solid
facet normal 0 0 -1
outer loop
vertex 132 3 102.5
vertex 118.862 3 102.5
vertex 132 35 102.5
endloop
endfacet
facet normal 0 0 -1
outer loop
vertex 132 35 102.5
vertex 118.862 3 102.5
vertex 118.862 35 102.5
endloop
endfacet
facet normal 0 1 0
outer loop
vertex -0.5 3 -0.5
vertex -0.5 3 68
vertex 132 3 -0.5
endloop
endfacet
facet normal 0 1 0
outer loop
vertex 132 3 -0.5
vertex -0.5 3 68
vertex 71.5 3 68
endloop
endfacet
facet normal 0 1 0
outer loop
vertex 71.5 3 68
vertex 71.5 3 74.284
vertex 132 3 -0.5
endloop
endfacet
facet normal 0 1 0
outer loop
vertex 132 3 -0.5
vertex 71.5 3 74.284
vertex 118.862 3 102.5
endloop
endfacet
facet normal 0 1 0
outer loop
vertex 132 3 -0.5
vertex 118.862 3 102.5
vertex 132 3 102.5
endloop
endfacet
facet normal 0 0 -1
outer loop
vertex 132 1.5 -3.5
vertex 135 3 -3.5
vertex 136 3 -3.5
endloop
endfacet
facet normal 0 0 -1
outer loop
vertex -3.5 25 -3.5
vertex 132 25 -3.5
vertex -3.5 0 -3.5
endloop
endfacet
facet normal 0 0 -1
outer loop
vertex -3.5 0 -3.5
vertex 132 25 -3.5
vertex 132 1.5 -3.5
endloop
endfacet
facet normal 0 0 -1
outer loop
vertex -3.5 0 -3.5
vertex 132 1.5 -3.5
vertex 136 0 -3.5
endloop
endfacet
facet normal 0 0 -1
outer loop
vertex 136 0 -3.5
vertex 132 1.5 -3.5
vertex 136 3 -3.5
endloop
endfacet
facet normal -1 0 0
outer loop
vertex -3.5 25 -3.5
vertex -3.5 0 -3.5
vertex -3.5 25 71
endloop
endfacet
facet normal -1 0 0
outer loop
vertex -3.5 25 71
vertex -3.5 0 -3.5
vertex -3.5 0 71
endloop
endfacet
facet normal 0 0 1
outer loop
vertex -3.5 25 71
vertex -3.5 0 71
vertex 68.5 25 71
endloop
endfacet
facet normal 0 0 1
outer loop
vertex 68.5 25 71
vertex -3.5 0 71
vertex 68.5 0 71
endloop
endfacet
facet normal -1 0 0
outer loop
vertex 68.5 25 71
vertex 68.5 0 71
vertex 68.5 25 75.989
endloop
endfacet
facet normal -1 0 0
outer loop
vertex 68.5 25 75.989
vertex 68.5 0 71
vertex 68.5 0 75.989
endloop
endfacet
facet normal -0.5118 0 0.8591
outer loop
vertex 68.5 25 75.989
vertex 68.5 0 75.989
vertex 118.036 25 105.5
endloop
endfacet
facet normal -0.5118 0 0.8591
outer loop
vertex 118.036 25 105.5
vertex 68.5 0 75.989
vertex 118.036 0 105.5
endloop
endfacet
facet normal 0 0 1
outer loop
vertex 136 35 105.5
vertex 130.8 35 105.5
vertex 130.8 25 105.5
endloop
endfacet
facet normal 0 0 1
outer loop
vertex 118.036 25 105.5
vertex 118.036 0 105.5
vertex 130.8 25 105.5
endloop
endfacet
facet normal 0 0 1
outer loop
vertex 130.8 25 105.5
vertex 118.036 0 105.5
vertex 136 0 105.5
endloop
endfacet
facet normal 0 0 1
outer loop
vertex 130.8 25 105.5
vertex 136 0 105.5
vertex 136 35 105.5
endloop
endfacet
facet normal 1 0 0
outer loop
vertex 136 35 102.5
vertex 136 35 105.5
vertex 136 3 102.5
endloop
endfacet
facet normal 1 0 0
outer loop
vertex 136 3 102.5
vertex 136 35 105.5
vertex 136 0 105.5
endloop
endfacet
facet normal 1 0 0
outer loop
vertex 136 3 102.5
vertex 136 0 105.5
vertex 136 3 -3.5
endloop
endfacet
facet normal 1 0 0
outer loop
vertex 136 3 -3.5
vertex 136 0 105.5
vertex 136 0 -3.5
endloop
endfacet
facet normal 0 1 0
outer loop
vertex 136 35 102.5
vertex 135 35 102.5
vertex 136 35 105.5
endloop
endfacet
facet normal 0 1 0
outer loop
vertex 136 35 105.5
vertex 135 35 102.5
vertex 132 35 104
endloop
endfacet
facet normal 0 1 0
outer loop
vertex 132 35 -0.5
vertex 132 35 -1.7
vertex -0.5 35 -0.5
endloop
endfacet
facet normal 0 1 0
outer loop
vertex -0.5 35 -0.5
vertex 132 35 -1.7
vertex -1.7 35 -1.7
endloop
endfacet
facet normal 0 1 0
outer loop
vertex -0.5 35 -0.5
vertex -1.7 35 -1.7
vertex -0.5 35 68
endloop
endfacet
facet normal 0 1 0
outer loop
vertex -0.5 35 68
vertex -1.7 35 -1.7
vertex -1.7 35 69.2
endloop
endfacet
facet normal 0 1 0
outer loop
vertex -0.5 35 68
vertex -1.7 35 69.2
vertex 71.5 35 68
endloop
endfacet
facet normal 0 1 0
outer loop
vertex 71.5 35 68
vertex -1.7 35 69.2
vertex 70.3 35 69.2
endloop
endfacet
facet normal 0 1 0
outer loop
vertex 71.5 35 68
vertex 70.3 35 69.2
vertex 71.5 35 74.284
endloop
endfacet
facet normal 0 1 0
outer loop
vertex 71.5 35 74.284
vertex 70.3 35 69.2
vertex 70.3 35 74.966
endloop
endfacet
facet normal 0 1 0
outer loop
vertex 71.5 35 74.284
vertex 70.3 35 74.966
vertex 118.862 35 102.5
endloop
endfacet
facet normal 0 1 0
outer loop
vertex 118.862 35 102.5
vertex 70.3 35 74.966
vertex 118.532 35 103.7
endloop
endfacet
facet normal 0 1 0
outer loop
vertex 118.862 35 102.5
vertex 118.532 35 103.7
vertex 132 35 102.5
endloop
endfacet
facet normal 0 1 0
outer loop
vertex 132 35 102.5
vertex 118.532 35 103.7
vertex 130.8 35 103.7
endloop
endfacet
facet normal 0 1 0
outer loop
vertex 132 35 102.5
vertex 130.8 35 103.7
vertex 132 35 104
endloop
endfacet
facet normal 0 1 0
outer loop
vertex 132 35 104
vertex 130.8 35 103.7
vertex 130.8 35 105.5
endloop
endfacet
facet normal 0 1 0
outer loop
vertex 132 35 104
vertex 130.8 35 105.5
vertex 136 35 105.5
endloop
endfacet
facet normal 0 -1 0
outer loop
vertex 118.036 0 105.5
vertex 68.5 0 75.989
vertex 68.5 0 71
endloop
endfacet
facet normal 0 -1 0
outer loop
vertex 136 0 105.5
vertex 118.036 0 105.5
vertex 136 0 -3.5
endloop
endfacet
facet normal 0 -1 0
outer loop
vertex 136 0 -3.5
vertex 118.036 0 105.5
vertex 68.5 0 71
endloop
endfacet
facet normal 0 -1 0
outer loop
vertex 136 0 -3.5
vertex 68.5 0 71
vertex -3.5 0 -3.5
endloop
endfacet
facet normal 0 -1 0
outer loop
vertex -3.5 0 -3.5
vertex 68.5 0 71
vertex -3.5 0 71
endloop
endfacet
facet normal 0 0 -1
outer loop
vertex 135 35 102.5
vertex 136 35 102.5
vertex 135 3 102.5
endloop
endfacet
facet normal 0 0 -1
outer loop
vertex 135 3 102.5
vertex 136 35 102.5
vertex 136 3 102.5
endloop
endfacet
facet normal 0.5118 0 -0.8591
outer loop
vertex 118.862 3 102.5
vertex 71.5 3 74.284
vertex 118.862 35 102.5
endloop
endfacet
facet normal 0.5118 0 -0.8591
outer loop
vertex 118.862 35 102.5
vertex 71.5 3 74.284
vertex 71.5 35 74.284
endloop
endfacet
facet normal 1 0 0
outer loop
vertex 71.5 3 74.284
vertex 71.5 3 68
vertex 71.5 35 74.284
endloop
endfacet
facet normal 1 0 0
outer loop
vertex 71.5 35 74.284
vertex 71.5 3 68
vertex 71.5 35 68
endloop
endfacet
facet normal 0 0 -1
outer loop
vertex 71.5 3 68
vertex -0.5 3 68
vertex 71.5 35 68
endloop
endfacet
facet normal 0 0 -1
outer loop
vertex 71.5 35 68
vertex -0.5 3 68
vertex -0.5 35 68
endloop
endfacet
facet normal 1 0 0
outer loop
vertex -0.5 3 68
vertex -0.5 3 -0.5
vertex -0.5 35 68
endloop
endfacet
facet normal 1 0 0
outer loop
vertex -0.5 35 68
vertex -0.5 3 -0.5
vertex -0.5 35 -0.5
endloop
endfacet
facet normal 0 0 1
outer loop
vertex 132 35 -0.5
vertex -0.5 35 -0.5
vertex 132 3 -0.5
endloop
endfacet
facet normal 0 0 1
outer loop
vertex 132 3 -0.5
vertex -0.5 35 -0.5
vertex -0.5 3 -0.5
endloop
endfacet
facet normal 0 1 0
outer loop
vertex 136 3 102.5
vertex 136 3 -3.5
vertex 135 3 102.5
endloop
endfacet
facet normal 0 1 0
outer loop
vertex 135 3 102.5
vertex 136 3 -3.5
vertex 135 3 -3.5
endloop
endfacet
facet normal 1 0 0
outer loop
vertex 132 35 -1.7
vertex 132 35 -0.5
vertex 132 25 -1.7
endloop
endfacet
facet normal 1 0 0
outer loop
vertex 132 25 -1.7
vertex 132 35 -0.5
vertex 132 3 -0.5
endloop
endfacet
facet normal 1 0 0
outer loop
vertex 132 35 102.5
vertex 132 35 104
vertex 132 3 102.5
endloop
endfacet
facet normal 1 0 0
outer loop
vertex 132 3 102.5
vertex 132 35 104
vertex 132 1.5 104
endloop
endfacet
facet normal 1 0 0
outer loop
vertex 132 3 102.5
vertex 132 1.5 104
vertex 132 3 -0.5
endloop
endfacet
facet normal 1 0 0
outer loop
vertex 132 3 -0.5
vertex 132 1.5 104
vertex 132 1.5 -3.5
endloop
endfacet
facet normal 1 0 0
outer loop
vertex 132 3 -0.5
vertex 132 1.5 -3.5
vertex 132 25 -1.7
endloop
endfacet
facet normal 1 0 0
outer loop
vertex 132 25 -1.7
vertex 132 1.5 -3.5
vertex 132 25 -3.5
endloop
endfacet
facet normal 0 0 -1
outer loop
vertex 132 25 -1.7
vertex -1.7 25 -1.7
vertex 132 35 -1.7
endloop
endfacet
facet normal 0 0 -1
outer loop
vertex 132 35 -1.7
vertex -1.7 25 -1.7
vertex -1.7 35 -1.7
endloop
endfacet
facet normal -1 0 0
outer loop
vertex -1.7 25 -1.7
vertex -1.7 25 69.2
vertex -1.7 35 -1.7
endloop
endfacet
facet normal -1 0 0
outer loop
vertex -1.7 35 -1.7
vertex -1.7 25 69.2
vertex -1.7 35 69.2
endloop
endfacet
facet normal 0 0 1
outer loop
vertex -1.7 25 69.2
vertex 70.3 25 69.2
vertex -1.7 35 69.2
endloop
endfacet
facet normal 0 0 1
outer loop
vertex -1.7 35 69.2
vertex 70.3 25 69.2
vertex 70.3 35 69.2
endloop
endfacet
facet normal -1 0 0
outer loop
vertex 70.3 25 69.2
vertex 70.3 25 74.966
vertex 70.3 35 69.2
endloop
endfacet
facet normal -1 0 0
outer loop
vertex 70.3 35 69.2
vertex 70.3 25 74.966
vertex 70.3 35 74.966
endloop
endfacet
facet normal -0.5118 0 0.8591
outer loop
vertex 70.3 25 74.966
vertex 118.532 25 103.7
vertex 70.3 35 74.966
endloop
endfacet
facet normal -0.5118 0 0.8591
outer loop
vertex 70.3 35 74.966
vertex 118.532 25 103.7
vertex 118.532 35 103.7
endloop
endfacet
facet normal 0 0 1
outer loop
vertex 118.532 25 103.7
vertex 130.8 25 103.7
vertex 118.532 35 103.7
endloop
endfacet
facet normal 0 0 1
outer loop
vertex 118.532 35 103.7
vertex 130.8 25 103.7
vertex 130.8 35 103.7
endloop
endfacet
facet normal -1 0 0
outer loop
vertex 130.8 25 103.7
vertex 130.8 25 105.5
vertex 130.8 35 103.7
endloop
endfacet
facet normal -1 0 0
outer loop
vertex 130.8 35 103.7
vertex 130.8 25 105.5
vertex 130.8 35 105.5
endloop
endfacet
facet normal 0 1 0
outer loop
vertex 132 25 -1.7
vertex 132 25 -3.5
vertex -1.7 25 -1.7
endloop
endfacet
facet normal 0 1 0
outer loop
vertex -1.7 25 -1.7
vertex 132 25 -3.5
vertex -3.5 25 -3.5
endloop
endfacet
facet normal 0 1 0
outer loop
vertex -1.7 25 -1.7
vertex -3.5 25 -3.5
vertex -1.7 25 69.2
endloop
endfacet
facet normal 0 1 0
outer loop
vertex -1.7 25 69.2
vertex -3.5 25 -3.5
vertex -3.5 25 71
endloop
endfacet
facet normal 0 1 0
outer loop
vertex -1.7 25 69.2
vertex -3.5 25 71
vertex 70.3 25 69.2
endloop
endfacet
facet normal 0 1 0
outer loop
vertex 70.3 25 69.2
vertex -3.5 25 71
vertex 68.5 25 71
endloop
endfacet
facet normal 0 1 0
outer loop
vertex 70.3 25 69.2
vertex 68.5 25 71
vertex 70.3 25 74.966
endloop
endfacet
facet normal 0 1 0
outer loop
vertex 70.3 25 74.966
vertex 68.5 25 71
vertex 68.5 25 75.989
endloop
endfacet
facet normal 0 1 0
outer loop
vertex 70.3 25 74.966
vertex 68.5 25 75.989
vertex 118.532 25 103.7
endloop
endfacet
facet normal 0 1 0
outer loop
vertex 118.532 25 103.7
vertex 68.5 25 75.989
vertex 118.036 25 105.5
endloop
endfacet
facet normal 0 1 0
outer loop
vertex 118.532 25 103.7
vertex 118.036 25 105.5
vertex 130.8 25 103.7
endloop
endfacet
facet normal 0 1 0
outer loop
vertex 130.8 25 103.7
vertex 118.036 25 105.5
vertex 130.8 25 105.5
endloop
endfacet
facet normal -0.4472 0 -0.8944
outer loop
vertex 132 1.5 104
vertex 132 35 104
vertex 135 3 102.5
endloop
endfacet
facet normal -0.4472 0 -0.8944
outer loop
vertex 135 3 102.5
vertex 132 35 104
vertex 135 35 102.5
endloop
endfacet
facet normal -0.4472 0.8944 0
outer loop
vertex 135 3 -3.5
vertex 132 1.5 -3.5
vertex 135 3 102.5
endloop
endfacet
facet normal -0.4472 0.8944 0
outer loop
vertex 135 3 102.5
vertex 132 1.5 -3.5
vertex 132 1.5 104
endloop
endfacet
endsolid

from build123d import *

# Parameters (mm, degrees)
BOSS_EXTRUDE1_DEPTH = 35
CUT_EXTRUDE1_DEPTH  = 32
SKETCH5_W           = 4
SKETCH5_H           = 106
CUT_EXTRUDE2_DEPTH  = 32
SKETCH6_W           = 3
SKETCH6_H           = 106
CUT_EXTRUDE3_DEPTH  = 1.5
SKETCH7_W           = 3
SKETCH7_H           = 33.5
CUT_EXTRUDE4_DEPTH  = 1.5
CUT_EXTRUDE5_DEPTH  = 10
BOSS_EXTRUDE2_DEPTH = 33.5
BOSS_EXTRUDE3_DEPTH = 109


with BuildPart() as part:
    # PCB → Boss-Extrude1 (new body)
    with BuildSketch(Plane(origin=(0, 0, 0), x_dir=(1, 0, 0), z_dir=(0, 1, 0))):
        Polygon((68.5, -75.988917258), (118.036460317, -105.5), (135, -105.5), (136, -105.5), (136, 3.5), (135, 3.5), (-3.5, 3.5), (-3.5, -71), (68.5, -71), align=None)
    extrude(amount=BOSS_EXTRUDE1_DEPTH)

    # Sketch4 → Cut-Extrude1 (cut)
    with BuildSketch(Plane(origin=(0, 35, 0), x_dir=(1, 0, 0), z_dir=(0, 1, 0))):
        Polygon((133, 0.5), (-0.5, 0.5), (-0.5, -68), (71.5, -68), (71.5, -74.284131037), (118.862351474, -102.5), (133, -102.5), align=None)
    extrude(amount=-CUT_EXTRUDE1_DEPTH, mode=Mode.SUBTRACT)

    # Sketch5 → Cut-Extrude2 (cut)
    with BuildSketch(Plane(origin=(0, 35, 0), x_dir=(1, 0, 0), z_dir=(0, 1, 0))):
        with Locations((134, -49.5)):
            Rectangle(SKETCH5_W, SKETCH5_H)
    extrude(amount=-CUT_EXTRUDE2_DEPTH, mode=Mode.SUBTRACT)

    # Sketch6 → Cut-Extrude3 (cut)
    with BuildSketch(Plane(origin=(0, 3, 0), x_dir=(1, 0, 0), z_dir=(0, 1, 0))):
        with Locations((133.5, -49.5)):
            Rectangle(SKETCH6_W, SKETCH6_H)
    extrude(amount=-CUT_EXTRUDE3_DEPTH, mode=Mode.SUBTRACT)

    # Sketch7 → Cut-Extrude4 (cut)
    with BuildSketch(Plane(origin=(0, 0, 102.5), x_dir=(-1, 0, 0), z_dir=(0, 0, -1))):
        with Locations((-133.5, 18.25)):
            Rectangle(SKETCH7_W, SKETCH7_H)
    extrude(amount=-CUT_EXTRUDE4_DEPTH, mode=Mode.SUBTRACT)

    # Sketch10 → Cut-Extrude5 (cut)
    with BuildSketch(Plane(origin=(0, 35, 0), x_dir=(1, 0, 0), z_dir=(0, 1, 0))):
        Polygon((130.8, -105.5), (118.036460317, -105.5), (68.5, -75.988917258), (68.5, -71), (-3.5, -71), (-3.5, 3.5), (132, 3.5), (132, 1.7), (-1.7, 1.7), (-1.7, -69.2), (70.3, -69.2), (70.3, -74.966045525), (118.531995011, -103.7), (130.8, -103.7), align=None)
    extrude(amount=-CUT_EXTRUDE5_DEPTH, mode=Mode.SUBTRACT)

    # Sketch11 → Boss-Extrude2 (add)
    with BuildSketch(Plane(origin=(0, 1.5, 0), x_dir=(1, 0, 0), z_dir=(0, 1, 0))):
        Polygon((132, -104), (135, -102.5), (135, -104), align=None)
    extrude(amount=BOSS_EXTRUDE2_DEPTH)

    # Sketch13 → Boss-Extrude3 (add)
    with BuildSketch(Plane.XY.offset(105.5)):
        Polygon((132, 1.5), (135, 3), (135, 1.5), align=None)
    extrude(amount=-BOSS_EXTRUDE3_DEPTH)


solid = part.part
